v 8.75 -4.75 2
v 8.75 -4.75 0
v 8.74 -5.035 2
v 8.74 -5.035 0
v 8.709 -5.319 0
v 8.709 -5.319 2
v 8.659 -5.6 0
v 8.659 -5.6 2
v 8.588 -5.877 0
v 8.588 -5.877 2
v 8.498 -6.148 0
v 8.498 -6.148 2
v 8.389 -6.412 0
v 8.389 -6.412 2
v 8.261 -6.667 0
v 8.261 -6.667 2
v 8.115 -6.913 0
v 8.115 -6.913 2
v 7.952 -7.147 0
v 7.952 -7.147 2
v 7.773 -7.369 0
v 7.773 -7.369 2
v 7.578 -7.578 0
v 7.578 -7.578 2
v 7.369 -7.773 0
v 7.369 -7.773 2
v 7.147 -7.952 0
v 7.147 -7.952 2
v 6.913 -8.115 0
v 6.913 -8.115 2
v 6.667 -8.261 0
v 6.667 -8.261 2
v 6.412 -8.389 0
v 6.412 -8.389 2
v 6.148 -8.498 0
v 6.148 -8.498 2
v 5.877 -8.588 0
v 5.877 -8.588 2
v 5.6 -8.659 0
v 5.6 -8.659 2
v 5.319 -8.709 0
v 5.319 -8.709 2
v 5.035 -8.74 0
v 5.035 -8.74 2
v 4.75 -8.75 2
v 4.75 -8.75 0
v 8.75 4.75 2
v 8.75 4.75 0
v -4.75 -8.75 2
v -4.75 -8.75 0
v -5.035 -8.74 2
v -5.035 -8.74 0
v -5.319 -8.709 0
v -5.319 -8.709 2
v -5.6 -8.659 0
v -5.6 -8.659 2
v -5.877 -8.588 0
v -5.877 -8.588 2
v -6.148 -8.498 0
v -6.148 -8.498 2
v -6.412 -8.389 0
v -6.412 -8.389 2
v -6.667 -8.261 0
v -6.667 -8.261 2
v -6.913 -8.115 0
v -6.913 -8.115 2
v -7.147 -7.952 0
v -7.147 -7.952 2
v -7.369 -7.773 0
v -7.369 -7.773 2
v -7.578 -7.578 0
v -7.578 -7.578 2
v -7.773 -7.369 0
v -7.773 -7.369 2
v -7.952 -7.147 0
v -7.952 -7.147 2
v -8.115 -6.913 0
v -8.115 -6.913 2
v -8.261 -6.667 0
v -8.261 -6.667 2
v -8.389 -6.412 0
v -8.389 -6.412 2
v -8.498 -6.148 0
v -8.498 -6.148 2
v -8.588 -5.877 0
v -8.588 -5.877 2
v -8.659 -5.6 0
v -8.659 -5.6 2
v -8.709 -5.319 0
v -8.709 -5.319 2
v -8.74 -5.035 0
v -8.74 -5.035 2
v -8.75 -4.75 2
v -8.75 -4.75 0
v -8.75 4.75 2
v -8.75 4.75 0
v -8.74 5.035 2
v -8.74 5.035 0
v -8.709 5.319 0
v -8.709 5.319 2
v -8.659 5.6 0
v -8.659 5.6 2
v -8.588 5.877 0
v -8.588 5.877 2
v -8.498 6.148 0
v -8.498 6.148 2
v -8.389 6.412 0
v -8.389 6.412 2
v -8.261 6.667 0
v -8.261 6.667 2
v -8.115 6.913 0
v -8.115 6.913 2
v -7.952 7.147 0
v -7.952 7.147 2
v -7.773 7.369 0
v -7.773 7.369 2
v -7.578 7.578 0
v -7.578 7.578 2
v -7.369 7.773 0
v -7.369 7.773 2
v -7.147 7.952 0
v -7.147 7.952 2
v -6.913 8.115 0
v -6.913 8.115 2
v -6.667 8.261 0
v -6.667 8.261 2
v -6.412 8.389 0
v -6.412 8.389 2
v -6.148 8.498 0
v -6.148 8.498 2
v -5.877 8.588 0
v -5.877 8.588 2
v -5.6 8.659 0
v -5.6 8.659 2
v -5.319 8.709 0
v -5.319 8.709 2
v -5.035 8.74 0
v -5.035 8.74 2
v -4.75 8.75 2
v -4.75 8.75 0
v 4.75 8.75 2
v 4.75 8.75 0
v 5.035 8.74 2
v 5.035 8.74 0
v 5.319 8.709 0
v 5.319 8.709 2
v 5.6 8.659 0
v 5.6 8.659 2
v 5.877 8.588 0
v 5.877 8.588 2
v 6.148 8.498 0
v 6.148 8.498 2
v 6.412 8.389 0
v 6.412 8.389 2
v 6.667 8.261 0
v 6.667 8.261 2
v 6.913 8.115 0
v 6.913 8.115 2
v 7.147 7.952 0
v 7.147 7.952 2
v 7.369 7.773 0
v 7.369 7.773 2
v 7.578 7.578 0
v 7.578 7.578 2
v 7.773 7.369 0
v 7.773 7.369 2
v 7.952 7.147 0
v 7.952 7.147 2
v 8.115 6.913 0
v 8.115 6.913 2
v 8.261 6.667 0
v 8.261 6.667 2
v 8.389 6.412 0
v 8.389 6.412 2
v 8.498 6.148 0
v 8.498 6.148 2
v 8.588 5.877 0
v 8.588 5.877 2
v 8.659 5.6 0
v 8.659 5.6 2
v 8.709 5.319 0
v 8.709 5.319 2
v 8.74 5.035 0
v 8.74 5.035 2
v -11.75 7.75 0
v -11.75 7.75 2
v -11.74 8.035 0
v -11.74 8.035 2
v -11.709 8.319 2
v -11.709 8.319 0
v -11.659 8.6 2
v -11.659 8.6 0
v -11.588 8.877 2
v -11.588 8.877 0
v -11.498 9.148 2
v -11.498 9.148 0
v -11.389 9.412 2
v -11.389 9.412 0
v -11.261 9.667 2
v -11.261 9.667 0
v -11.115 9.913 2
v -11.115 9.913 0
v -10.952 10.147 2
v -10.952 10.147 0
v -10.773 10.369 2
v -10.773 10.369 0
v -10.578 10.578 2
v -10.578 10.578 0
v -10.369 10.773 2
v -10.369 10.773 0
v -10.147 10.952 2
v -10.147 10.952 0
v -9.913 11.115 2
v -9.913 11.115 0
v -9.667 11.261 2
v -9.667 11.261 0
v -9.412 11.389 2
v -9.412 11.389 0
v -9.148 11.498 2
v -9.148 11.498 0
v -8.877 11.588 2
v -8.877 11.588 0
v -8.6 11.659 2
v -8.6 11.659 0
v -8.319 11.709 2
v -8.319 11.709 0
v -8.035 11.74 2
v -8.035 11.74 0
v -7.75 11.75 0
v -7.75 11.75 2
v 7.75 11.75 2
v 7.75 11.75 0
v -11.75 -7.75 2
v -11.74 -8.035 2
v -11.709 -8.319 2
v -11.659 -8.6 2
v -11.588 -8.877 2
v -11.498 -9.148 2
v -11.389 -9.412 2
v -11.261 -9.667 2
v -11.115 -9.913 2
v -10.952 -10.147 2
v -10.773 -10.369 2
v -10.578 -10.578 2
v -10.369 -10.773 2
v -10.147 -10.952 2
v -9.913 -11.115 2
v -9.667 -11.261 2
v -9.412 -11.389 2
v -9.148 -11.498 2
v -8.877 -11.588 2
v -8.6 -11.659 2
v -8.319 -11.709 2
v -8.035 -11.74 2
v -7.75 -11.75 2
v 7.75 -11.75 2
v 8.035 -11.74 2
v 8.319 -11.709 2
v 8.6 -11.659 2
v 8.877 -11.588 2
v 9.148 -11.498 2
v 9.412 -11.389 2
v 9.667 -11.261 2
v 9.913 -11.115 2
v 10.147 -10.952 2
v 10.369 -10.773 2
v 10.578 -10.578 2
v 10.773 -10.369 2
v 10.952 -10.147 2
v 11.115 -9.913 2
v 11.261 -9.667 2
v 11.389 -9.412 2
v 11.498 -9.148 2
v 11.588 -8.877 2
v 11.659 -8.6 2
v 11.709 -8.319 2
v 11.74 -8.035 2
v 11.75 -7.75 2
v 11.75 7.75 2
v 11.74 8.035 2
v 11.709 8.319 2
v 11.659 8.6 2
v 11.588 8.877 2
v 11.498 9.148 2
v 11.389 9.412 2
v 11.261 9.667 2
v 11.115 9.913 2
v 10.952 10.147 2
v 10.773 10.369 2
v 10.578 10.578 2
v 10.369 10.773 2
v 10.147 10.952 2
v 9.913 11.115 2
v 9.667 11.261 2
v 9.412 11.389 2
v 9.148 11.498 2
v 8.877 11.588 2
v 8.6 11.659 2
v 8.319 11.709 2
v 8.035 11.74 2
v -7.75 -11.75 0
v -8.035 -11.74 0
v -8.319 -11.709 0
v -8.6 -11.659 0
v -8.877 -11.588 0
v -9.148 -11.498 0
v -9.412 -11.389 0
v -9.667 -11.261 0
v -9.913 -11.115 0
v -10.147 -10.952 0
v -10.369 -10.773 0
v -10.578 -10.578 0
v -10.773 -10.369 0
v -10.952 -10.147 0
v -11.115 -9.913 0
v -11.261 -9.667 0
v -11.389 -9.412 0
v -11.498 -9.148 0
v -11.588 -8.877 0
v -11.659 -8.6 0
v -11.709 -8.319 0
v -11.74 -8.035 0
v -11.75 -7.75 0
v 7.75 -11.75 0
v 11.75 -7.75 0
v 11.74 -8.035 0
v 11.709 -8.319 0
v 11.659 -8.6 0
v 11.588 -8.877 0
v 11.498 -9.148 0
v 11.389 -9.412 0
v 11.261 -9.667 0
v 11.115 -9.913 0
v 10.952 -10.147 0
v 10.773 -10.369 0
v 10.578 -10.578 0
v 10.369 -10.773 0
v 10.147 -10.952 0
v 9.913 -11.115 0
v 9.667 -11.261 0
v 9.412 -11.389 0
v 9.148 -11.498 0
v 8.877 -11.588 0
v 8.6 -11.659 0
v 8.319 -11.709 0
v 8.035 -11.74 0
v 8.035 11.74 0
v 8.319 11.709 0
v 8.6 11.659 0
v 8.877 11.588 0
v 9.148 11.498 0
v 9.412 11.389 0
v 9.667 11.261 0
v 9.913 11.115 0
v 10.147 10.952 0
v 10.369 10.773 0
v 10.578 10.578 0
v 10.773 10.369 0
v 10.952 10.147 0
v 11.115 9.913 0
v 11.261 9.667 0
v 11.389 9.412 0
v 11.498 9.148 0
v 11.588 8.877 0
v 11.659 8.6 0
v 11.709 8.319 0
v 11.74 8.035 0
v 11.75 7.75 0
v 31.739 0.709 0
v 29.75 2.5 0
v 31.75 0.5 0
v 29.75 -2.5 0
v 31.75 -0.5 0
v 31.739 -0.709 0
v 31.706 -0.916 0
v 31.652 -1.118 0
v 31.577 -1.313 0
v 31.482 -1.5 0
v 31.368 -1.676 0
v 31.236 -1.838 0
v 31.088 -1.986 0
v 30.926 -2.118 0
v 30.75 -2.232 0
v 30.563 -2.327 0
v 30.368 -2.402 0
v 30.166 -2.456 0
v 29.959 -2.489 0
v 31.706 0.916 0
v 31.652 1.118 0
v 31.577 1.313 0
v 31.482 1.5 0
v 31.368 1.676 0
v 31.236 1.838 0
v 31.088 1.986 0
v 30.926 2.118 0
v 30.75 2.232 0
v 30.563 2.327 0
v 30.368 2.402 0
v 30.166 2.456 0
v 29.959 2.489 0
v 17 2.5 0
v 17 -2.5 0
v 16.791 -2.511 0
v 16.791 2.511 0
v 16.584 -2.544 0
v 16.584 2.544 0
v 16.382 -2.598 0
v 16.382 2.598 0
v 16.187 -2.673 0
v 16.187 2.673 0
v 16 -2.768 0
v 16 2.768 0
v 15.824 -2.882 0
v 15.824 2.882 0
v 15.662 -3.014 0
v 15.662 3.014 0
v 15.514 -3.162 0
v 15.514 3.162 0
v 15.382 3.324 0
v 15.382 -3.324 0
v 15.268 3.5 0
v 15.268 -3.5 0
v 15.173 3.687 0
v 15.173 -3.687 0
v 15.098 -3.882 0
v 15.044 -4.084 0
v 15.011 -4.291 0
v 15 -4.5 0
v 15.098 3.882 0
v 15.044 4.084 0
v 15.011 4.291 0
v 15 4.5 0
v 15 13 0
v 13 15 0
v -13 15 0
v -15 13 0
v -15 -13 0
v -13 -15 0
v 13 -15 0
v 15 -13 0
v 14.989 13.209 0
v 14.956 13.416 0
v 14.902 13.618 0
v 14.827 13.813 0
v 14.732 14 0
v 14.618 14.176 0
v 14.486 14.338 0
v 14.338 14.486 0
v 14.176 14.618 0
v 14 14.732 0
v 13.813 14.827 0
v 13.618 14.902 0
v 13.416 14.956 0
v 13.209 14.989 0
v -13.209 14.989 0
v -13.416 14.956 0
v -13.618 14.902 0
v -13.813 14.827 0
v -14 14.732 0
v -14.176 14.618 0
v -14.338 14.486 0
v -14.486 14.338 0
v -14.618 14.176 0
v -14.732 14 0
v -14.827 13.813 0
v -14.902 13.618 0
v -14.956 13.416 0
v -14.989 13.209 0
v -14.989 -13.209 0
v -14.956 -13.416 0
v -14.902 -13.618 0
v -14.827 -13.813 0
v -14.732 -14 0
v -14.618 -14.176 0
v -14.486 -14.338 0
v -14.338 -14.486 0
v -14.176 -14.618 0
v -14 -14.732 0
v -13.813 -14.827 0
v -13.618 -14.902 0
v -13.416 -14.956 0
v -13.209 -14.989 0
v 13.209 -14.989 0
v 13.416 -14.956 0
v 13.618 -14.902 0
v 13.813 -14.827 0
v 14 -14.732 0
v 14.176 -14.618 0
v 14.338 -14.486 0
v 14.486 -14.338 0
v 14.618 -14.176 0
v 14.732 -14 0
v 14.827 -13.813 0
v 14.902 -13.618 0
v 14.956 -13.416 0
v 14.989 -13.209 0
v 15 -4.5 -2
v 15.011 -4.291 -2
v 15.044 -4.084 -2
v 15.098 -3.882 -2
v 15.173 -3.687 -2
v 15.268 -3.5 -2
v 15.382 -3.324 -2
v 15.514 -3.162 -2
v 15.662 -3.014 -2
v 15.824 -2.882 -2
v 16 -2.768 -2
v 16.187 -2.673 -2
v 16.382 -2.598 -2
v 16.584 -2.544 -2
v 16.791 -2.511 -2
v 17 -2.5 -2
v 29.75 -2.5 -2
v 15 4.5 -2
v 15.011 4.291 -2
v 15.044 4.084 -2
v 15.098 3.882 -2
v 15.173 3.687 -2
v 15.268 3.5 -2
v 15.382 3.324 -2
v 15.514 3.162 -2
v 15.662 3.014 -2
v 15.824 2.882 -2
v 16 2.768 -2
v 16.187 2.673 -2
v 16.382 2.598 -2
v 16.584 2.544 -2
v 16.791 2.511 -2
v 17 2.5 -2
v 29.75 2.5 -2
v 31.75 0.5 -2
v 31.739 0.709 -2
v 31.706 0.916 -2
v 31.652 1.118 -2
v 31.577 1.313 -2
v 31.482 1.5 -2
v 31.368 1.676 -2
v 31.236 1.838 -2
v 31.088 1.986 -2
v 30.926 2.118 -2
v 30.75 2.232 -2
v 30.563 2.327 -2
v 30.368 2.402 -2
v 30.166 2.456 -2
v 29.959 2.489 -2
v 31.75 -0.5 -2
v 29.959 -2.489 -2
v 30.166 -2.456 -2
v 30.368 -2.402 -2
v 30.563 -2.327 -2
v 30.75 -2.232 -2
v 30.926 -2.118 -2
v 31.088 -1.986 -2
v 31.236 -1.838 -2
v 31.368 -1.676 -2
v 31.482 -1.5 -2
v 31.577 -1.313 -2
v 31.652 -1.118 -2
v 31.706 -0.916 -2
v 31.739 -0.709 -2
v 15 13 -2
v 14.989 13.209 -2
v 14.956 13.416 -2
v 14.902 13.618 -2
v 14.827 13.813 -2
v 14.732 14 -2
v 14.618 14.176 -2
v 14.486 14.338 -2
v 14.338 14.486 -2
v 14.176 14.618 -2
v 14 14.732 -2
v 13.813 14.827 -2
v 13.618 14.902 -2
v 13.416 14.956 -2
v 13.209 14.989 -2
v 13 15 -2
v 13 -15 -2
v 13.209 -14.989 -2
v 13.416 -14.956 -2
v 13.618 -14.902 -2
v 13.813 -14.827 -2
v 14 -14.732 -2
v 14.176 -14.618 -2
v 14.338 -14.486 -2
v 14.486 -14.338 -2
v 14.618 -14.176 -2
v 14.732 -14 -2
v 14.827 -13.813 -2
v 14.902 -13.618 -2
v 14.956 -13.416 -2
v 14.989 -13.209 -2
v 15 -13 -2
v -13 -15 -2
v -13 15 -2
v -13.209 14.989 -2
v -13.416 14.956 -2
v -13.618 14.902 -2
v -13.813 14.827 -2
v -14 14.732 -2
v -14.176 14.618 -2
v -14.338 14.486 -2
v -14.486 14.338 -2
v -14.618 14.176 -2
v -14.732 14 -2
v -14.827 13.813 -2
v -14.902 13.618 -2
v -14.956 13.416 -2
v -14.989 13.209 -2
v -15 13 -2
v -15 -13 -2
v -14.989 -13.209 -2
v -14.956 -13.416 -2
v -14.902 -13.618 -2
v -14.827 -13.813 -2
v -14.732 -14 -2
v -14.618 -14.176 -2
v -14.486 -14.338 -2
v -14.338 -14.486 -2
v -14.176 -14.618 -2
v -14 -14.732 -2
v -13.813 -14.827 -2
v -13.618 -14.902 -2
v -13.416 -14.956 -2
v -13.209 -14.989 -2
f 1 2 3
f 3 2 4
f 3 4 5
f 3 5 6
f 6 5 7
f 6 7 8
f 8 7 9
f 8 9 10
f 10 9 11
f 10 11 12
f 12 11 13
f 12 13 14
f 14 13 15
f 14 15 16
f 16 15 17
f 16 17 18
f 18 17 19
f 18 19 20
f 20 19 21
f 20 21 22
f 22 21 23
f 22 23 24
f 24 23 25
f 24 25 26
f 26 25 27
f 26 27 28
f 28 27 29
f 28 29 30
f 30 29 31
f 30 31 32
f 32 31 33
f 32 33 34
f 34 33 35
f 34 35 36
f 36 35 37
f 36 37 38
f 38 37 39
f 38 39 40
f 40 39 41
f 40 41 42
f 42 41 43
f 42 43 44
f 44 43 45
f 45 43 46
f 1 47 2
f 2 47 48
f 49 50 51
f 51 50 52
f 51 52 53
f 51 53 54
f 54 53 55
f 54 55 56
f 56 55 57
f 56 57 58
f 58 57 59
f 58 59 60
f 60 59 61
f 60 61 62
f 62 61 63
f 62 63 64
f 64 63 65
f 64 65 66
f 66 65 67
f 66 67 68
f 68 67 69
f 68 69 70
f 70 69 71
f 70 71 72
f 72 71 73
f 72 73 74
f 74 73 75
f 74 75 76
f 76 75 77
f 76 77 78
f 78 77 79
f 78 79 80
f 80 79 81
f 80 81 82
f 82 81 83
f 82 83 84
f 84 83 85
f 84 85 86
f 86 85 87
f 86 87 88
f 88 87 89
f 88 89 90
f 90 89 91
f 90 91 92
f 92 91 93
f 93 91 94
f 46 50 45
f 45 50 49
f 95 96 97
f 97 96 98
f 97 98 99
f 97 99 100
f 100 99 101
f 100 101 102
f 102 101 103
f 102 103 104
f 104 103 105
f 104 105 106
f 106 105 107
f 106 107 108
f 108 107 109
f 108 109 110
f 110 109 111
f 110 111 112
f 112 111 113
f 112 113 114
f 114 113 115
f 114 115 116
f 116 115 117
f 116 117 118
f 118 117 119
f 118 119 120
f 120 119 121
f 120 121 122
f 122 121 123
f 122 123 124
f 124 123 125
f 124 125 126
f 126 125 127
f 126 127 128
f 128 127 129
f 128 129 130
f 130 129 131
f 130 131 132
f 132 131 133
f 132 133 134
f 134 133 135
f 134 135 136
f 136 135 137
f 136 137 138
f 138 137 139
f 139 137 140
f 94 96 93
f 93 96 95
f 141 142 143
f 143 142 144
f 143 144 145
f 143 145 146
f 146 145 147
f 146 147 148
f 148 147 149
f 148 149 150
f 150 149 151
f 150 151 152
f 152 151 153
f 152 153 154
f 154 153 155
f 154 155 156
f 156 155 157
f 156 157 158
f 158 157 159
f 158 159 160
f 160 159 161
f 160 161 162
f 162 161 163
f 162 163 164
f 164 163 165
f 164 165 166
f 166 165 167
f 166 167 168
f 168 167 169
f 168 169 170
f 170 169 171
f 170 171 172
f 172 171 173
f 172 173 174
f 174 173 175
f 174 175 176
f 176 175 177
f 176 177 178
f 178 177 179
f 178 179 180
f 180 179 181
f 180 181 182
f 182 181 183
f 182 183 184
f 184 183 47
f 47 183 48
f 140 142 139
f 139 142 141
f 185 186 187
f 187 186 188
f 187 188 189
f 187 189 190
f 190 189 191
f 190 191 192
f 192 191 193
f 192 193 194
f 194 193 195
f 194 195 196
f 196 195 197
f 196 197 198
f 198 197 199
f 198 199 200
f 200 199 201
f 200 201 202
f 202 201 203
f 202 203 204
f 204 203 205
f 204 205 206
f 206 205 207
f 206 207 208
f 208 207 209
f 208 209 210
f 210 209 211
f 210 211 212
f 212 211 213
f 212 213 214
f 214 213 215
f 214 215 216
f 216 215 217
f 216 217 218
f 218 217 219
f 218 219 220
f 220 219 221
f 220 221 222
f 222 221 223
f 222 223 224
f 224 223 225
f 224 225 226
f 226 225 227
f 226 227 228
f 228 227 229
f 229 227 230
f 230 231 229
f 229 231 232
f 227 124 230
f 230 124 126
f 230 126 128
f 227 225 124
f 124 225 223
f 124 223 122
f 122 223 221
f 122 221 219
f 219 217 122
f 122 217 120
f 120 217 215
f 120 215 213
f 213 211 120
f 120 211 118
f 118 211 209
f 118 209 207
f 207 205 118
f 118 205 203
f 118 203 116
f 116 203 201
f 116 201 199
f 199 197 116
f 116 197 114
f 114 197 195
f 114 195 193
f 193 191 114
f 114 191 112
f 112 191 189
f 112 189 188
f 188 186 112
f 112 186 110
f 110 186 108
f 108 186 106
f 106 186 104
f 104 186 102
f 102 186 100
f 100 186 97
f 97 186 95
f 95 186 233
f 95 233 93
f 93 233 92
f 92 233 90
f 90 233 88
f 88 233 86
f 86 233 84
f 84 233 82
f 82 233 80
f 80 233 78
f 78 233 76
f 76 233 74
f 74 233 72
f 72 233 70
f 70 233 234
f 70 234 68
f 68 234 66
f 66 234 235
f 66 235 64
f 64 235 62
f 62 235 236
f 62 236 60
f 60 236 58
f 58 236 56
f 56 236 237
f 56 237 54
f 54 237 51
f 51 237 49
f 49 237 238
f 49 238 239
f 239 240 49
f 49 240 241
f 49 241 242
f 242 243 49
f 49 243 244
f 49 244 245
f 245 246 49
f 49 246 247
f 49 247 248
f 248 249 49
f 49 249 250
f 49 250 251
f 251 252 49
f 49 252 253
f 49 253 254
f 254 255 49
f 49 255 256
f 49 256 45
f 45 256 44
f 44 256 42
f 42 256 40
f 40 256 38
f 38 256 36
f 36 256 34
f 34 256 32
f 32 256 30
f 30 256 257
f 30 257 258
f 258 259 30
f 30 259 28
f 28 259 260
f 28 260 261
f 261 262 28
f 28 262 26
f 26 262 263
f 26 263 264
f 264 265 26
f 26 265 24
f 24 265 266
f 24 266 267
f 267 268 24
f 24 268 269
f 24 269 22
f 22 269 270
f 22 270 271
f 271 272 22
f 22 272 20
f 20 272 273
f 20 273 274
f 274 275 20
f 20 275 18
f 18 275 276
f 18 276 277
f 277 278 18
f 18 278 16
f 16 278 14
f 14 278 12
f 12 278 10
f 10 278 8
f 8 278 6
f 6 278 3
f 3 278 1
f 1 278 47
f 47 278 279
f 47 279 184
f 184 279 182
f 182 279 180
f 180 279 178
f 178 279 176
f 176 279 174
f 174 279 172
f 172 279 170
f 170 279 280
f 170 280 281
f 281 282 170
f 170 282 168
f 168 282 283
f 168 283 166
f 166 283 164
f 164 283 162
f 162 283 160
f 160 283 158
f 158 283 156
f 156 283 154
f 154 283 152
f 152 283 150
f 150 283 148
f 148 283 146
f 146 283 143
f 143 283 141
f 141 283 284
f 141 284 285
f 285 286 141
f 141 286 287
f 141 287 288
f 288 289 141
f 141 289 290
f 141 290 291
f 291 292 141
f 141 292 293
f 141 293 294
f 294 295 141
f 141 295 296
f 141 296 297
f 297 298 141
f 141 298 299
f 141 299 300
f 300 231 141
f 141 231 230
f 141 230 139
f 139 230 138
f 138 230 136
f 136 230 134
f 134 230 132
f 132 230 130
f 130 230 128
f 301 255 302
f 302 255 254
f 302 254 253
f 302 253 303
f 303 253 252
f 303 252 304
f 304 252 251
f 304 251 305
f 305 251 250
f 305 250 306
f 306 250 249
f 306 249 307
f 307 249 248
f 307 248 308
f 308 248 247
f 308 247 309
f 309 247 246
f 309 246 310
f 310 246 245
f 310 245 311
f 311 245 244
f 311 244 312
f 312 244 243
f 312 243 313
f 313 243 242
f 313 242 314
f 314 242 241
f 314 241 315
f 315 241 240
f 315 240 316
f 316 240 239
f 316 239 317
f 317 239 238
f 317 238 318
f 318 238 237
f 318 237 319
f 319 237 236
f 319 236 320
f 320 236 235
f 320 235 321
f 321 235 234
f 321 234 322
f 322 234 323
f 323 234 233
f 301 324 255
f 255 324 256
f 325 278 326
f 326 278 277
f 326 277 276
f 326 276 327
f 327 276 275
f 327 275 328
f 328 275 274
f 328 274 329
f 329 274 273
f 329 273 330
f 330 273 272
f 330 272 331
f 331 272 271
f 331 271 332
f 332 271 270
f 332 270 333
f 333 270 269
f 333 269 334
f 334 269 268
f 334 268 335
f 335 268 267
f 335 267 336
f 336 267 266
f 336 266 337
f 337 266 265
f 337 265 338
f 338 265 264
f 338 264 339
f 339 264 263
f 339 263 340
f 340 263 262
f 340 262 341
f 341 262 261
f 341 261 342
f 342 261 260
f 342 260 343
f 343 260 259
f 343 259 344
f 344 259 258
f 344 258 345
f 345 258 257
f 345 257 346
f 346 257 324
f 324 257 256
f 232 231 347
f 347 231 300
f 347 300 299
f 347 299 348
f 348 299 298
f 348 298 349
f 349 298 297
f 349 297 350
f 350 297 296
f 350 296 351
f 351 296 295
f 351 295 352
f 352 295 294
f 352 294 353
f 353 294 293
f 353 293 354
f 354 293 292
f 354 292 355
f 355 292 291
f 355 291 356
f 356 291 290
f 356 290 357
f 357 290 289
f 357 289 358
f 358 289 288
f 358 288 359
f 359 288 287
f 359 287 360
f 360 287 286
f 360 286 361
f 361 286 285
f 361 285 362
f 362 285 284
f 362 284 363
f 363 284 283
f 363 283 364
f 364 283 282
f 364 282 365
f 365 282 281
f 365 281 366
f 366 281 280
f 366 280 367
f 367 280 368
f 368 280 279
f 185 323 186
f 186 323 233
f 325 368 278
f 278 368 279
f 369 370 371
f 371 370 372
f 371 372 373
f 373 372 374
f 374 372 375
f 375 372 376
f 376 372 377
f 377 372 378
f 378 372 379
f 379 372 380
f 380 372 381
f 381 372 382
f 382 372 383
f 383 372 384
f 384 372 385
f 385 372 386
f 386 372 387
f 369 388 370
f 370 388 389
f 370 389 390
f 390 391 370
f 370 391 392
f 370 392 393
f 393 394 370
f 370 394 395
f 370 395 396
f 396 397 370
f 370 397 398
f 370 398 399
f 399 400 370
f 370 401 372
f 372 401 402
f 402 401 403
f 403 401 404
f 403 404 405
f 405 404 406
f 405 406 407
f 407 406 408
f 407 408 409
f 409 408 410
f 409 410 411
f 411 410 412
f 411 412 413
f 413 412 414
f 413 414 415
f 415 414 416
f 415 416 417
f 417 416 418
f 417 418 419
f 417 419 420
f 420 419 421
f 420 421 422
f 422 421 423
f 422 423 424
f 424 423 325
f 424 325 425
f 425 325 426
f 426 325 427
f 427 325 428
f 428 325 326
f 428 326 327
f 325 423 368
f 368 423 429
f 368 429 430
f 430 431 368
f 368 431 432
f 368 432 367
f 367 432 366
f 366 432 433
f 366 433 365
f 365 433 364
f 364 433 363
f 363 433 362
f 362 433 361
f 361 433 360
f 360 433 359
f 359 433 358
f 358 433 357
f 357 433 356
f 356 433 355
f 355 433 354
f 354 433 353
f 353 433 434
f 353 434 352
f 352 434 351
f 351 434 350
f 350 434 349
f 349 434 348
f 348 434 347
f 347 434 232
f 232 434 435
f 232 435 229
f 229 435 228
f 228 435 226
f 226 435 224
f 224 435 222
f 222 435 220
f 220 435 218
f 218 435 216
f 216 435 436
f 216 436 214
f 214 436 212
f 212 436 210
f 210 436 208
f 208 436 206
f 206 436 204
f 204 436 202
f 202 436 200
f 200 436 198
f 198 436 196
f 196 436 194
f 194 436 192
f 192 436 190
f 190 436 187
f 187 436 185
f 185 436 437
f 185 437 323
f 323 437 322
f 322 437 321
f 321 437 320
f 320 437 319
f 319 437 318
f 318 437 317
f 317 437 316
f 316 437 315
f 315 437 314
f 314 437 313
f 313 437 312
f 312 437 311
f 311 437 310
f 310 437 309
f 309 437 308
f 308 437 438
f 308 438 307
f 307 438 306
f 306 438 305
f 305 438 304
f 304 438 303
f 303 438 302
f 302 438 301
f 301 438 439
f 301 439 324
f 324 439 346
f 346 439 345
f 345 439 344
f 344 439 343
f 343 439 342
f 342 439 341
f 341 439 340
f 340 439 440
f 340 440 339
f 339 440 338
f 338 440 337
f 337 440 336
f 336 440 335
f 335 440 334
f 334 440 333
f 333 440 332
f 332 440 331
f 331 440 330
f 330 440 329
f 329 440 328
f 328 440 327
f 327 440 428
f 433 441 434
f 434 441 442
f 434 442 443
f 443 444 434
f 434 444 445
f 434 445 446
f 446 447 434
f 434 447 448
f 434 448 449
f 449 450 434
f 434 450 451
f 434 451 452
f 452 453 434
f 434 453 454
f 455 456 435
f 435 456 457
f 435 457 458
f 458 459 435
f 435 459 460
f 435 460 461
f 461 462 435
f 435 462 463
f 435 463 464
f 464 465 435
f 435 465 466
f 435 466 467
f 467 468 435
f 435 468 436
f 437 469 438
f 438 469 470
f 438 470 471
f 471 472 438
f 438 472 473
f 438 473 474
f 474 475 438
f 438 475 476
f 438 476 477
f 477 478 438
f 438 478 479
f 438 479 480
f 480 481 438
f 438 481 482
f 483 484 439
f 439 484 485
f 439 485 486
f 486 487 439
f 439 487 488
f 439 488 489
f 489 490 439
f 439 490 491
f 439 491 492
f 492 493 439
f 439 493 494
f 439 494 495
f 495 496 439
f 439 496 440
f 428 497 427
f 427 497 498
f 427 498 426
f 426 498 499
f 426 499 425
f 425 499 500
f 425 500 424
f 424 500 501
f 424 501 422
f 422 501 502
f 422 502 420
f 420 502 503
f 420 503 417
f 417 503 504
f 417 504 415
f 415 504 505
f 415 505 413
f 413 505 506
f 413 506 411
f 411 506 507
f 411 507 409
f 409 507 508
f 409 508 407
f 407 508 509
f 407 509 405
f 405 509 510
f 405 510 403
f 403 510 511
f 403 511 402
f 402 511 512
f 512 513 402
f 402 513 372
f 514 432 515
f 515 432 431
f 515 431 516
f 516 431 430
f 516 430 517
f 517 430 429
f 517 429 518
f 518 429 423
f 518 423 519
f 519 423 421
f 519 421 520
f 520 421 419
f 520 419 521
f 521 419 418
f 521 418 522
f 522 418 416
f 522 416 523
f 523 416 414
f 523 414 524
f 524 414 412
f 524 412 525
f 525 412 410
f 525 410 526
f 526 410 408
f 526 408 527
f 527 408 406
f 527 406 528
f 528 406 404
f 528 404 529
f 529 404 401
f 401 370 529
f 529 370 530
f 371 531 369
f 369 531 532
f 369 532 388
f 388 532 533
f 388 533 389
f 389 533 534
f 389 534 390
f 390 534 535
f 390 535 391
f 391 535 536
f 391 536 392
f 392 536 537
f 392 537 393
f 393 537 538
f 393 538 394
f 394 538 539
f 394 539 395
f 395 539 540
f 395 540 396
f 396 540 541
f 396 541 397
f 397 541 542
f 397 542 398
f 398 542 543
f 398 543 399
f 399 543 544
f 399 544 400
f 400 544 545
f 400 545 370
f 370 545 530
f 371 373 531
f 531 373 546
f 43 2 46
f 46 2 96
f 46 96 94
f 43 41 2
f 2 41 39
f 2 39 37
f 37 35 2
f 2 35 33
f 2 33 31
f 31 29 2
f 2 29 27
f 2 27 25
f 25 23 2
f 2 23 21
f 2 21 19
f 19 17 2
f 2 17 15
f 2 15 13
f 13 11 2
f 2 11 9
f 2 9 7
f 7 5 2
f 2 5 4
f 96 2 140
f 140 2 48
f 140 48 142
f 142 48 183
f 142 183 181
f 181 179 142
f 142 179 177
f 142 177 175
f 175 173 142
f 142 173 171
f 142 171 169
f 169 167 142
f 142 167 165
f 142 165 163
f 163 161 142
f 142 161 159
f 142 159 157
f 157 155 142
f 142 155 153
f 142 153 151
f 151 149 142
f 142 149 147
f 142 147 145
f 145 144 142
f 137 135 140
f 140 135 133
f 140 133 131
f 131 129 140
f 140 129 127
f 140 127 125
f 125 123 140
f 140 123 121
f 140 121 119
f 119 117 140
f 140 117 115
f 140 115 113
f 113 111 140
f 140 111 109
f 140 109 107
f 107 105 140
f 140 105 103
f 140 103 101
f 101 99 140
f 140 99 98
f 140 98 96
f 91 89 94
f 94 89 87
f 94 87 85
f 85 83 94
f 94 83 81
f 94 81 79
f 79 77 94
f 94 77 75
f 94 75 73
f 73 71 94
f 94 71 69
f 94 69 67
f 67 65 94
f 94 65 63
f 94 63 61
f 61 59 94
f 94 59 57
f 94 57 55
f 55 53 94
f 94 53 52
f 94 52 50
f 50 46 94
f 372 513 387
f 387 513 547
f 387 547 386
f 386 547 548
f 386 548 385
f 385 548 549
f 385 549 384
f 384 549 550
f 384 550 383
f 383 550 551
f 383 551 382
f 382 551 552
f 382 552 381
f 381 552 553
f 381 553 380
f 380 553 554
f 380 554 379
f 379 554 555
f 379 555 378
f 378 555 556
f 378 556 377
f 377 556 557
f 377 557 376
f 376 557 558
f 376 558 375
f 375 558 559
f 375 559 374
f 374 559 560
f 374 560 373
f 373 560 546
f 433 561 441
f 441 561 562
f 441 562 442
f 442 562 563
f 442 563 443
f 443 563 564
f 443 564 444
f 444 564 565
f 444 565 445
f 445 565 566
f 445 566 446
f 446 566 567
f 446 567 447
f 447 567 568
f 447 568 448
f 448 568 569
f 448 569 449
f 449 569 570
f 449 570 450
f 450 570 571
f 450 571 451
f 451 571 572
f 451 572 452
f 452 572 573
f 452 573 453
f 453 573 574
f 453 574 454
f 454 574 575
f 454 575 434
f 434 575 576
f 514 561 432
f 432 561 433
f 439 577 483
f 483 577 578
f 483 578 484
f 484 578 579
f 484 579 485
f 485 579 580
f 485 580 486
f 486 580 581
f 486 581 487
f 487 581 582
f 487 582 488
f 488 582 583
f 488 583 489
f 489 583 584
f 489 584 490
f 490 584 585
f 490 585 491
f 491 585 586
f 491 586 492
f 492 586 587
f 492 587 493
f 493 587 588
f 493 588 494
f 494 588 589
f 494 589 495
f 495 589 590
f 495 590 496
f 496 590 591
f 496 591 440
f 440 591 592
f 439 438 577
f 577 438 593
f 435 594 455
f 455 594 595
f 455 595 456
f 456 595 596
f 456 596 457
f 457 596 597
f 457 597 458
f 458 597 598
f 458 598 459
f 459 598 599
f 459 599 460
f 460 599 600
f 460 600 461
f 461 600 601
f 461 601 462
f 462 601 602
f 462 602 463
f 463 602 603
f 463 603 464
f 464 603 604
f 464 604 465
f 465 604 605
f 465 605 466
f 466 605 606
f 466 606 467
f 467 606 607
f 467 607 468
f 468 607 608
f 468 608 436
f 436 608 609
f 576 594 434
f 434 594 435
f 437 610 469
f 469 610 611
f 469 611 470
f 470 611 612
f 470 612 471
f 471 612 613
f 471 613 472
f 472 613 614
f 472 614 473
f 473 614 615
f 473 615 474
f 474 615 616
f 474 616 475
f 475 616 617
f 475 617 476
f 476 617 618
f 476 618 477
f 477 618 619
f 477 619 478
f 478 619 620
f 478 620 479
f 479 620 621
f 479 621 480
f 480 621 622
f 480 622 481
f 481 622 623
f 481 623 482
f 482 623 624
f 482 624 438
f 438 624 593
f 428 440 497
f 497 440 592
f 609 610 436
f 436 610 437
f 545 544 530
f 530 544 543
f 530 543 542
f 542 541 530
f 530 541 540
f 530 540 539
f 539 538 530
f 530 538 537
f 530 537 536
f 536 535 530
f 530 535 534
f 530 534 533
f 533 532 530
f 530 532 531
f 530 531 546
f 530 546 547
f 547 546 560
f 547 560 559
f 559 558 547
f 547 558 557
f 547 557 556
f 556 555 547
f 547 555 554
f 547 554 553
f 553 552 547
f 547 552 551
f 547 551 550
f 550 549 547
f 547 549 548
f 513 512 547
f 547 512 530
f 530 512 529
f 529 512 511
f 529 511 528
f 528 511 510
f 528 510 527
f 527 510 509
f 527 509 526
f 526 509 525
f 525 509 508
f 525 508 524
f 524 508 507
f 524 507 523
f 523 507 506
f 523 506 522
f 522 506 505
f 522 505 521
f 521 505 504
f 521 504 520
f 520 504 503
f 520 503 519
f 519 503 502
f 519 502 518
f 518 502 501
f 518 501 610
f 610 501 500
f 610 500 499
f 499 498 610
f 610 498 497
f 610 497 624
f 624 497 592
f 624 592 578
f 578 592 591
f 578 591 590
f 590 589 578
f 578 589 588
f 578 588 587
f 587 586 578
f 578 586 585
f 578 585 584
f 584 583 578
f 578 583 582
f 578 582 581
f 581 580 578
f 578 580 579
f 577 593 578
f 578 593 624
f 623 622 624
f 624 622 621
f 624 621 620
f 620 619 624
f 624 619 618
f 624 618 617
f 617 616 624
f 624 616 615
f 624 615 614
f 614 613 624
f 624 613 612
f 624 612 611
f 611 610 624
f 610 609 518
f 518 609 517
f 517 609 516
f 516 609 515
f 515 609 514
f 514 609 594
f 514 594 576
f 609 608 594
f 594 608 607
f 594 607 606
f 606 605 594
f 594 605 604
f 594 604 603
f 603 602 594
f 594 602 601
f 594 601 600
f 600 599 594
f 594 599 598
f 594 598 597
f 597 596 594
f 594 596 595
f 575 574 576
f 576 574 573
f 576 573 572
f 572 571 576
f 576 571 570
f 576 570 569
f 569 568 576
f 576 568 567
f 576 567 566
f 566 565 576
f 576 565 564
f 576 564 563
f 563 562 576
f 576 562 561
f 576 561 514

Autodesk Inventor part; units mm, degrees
ref_plane "YZ Plane" through (0, 0, 0) normal (1, 0, 0) x (0, 1, 0)
ref_plane "XZ Plane" through (0, 0, 0) normal (0, 1, 0) x (-1, 0, 0)
ref_plane "XY Plane" through (0, 0, 0) normal (0, 0, 1) x (1, 0, 0)
sketch "Sketch1" plane through (0, 0, 0) normal (0, 0, 1) x (1, 0, 0)
  line L0 (-15, -15) -> (15, -15)
  line L1 (15, -15) -> (15, 15)
  line L2 (15, 15) -> (-15, 15)
  line L3 (-15, 15) -> (-15, -15)
  line L4 (-15, -15) -> (15, 15) construction
  line L5 (15, -15) -> (-15, 15) construction
  line L6 (-11.75, -11.75) -> (11.75, -11.75)
  line L7 (11.75, -11.75) -> (11.75, 11.75)
  line L8 (11.75, 11.75) -> (-11.75, 11.75)
  line L9 (-11.75, 11.75) -> (-11.75, -11.75)
  line L10 (-11.75, -11.75) -> (11.75, 11.75) construction
  line L11 (11.75, -11.75) -> (-11.75, 11.75) construction
  line L12 (-8.75, 8.75) -> (8.75, 8.75)
  line L13 (8.75, 8.75) -> (8.75, -8.75)
  line L14 (8.75, -8.75) -> (-8.75, -8.75)
  line L15 (-8.75, -8.75) -> (-8.75, 8.75)
  line L16 (15, -2.5) -> (31.75, -2.5)
  line L17 (31.75, -2.5) -> (31.75, 2.5)
  line L18 (31.75, 2.5) -> (15, 2.5)
  line L19 (15, 2.5) -> (15, -2.5)
  point P0 (0, 0)
  point P1 (11.75, 0)
  dimension "d0" = 30
  dimension "d1" = 30
  dimension "d2" = 23.5
  dimension "d3" = 23.5
  dimension "d4" = 3
  dimension "d10" = 5
  dimension "d12" = 20
extrude "Extrusion2" add sketch "Sketch1" against normal blind 2 contours L3 L2 L1 L0 | L9 L8 L7 L6 | L12 L13 L14 L15
extrude "Extrusion3" add sketch "Sketch1" against normal blind 2 contours L1 L18 L17 L16
fillet "Fillet2" radius 2 4 edges at (-15, -15, -1) (-15, 15, -1) (15, -15, -1) (15, 15, -1)
fillet "Fillet3" radius 2 4 edges at (31.75, -2.5, -1) (31.75, 2.5, -1) (15, 2.5, -1) (15, -2.5, -1)
extrude "Extrusion4" add sketch "Sketch1" along normal blind 2 contours L9 L8 L7 L6
fillet "Fillet4" radius 4 8 edges at (11.75, 11.75, 1) (11.75, -11.75, 1) (-11.75, -11.75, 1) (-11.75, 11.75, 1) (8.75, 8.75, 1) (-8.75, 8.75, 1) (-8.75, -8.75, 1) (8.75, -8.75, 1)
properties part number "DustCover" material "ABS Plastic"
